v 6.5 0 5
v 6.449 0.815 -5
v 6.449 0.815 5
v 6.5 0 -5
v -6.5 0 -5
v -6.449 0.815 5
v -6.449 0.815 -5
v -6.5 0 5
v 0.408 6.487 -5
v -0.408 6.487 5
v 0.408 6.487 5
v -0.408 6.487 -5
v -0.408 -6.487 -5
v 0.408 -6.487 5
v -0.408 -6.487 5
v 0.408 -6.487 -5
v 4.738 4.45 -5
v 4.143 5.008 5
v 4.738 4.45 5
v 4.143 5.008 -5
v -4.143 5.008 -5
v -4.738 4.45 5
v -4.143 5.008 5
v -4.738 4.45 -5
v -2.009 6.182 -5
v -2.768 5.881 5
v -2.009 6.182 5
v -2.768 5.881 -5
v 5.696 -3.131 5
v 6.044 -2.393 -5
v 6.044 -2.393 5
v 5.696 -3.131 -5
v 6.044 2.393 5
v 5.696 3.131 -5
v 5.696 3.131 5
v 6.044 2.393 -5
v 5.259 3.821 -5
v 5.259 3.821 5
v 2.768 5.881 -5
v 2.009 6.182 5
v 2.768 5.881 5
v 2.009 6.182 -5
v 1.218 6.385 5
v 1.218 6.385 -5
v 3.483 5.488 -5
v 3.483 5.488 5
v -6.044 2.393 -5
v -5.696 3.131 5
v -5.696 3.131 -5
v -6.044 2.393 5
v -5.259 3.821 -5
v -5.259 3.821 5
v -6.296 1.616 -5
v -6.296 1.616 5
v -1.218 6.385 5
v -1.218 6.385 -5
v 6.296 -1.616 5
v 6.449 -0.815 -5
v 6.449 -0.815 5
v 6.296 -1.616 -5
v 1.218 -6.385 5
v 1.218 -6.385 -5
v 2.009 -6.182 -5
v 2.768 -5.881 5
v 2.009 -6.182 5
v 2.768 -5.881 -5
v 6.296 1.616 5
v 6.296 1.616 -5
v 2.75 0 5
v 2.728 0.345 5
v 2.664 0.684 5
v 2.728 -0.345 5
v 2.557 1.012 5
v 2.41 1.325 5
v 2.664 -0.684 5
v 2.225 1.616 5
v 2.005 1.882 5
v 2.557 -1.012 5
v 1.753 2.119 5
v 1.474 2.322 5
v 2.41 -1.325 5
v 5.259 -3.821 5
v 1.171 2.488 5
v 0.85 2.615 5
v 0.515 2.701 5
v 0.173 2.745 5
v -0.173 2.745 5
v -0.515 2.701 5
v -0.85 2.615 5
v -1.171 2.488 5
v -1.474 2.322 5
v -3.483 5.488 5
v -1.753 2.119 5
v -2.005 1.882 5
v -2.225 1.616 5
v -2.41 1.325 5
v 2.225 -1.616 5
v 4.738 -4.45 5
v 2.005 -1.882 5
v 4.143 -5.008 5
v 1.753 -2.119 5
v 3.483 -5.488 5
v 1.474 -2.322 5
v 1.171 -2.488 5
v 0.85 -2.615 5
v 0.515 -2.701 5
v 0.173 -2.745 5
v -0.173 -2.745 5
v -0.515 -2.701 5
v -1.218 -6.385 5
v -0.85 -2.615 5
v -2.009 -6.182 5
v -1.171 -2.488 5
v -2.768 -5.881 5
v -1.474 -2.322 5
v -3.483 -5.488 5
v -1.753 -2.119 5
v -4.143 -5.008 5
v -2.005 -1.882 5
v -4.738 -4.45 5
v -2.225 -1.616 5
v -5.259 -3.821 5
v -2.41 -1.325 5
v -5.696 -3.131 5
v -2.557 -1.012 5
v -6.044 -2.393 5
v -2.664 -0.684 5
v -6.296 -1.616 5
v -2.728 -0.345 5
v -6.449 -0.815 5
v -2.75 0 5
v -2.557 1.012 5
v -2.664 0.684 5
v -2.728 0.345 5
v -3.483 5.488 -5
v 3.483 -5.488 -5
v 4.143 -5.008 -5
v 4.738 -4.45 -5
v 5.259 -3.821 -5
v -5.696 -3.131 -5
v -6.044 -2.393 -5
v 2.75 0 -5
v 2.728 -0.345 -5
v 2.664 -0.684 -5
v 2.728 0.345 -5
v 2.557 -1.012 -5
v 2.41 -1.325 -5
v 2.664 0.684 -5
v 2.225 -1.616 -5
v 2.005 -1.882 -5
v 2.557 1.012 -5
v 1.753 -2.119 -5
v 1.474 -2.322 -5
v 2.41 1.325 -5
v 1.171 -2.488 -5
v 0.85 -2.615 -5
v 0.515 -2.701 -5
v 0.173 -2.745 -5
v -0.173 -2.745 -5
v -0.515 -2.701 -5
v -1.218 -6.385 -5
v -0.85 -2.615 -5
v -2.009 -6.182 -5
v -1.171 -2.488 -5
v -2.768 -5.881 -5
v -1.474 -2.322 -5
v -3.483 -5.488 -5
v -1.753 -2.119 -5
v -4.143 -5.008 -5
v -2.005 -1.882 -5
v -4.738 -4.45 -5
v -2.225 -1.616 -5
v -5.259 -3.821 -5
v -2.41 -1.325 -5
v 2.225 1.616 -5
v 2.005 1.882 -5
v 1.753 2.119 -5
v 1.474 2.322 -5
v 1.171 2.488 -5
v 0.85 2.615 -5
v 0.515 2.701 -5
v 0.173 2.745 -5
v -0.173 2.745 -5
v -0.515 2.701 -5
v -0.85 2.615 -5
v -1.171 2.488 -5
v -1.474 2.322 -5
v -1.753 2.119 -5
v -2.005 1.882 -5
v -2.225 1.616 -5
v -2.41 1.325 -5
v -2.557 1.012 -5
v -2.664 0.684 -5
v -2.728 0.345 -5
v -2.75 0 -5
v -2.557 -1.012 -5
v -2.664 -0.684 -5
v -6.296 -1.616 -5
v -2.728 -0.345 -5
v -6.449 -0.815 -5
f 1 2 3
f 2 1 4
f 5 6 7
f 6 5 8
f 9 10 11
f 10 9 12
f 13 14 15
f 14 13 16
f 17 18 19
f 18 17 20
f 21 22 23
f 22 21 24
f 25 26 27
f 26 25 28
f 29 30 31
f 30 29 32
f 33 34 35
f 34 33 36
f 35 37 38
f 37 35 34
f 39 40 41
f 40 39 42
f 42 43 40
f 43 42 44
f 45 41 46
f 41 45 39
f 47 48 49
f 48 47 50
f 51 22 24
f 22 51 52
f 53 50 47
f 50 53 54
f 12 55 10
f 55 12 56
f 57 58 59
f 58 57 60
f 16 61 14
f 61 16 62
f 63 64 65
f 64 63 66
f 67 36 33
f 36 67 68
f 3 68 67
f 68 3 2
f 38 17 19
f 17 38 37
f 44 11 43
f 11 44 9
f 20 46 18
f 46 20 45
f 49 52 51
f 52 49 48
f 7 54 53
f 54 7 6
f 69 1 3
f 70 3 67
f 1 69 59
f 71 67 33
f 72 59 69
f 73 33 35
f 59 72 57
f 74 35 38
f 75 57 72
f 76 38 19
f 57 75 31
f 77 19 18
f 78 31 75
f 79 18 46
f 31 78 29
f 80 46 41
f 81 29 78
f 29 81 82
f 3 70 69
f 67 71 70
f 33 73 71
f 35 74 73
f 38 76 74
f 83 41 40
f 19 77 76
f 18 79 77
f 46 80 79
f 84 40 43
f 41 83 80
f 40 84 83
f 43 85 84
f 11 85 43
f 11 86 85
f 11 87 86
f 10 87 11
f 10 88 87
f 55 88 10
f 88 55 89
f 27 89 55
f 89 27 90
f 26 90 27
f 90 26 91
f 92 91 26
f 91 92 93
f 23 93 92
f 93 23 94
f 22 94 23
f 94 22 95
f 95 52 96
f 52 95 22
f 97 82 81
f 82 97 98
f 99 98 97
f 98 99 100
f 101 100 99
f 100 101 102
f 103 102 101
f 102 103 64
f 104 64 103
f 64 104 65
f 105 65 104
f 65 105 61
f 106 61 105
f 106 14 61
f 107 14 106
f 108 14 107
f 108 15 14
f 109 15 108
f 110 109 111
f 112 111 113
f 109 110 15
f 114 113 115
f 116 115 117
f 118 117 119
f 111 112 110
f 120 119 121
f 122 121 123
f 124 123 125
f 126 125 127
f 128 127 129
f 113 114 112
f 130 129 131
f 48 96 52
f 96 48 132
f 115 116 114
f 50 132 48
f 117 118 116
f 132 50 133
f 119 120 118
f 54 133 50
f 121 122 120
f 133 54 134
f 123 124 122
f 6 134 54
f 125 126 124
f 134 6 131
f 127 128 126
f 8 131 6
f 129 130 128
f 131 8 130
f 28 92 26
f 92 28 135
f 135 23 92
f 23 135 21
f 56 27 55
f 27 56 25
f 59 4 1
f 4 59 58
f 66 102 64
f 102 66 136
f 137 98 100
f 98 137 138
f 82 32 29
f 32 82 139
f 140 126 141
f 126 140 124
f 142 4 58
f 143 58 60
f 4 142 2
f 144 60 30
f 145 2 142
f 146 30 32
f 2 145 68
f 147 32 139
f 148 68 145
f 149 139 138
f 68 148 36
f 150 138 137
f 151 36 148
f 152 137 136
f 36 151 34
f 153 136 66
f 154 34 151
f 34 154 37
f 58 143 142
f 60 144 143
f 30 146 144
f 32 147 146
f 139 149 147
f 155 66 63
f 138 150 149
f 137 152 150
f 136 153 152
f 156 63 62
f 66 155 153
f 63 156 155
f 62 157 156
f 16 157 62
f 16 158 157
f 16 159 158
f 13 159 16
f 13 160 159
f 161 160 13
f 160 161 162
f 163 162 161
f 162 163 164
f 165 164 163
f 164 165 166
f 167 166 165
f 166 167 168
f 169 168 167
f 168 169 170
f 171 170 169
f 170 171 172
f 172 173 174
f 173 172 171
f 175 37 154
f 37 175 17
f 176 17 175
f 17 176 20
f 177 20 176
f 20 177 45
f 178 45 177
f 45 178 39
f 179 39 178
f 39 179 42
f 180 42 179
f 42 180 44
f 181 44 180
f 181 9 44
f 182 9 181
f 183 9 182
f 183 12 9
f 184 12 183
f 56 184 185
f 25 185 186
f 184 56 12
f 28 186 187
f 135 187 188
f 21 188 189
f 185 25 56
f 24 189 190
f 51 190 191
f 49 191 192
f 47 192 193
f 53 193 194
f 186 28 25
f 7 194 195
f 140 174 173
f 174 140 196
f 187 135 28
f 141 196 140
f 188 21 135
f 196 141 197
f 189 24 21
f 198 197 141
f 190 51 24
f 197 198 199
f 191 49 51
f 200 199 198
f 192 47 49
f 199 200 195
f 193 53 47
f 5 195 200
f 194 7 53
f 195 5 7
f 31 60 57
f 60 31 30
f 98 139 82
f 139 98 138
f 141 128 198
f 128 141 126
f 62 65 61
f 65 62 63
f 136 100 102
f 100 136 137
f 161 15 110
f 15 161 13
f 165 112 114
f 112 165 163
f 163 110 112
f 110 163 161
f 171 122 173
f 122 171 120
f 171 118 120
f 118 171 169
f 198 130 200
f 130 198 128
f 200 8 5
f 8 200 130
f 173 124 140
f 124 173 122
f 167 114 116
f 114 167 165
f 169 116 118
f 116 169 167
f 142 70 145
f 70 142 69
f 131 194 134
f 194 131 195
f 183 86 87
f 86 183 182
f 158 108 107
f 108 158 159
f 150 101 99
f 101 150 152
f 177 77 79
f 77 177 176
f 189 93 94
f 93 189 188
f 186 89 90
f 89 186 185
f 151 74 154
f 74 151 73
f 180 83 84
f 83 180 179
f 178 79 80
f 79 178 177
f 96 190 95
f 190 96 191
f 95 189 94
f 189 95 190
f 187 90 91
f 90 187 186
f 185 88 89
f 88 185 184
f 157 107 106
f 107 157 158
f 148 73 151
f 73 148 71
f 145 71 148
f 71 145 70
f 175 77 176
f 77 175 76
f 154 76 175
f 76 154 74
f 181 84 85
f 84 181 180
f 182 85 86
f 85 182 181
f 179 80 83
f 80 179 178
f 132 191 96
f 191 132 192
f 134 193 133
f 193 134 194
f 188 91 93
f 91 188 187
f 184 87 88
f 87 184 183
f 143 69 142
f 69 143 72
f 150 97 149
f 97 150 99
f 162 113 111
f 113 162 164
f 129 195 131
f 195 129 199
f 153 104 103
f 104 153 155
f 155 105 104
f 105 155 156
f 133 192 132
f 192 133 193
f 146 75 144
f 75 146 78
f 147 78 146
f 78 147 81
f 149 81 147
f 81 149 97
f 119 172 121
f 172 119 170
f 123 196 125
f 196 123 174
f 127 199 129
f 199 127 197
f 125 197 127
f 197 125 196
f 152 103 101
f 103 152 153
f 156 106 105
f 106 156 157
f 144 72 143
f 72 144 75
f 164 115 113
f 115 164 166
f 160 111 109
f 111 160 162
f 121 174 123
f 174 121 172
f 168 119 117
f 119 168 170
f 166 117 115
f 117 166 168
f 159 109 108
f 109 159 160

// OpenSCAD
$fn = 50;


difference() {
	union() {
		translate(v = [0, 0, -5.0000000000]) {
			cylinder(h = 10, r = 6.5000000000);
		}
	}
	union() {
		translate(v = [0, 0, -100.0000000000]) {
			cylinder(h = 200, r = 2.7500000000);
		}
	}
}
